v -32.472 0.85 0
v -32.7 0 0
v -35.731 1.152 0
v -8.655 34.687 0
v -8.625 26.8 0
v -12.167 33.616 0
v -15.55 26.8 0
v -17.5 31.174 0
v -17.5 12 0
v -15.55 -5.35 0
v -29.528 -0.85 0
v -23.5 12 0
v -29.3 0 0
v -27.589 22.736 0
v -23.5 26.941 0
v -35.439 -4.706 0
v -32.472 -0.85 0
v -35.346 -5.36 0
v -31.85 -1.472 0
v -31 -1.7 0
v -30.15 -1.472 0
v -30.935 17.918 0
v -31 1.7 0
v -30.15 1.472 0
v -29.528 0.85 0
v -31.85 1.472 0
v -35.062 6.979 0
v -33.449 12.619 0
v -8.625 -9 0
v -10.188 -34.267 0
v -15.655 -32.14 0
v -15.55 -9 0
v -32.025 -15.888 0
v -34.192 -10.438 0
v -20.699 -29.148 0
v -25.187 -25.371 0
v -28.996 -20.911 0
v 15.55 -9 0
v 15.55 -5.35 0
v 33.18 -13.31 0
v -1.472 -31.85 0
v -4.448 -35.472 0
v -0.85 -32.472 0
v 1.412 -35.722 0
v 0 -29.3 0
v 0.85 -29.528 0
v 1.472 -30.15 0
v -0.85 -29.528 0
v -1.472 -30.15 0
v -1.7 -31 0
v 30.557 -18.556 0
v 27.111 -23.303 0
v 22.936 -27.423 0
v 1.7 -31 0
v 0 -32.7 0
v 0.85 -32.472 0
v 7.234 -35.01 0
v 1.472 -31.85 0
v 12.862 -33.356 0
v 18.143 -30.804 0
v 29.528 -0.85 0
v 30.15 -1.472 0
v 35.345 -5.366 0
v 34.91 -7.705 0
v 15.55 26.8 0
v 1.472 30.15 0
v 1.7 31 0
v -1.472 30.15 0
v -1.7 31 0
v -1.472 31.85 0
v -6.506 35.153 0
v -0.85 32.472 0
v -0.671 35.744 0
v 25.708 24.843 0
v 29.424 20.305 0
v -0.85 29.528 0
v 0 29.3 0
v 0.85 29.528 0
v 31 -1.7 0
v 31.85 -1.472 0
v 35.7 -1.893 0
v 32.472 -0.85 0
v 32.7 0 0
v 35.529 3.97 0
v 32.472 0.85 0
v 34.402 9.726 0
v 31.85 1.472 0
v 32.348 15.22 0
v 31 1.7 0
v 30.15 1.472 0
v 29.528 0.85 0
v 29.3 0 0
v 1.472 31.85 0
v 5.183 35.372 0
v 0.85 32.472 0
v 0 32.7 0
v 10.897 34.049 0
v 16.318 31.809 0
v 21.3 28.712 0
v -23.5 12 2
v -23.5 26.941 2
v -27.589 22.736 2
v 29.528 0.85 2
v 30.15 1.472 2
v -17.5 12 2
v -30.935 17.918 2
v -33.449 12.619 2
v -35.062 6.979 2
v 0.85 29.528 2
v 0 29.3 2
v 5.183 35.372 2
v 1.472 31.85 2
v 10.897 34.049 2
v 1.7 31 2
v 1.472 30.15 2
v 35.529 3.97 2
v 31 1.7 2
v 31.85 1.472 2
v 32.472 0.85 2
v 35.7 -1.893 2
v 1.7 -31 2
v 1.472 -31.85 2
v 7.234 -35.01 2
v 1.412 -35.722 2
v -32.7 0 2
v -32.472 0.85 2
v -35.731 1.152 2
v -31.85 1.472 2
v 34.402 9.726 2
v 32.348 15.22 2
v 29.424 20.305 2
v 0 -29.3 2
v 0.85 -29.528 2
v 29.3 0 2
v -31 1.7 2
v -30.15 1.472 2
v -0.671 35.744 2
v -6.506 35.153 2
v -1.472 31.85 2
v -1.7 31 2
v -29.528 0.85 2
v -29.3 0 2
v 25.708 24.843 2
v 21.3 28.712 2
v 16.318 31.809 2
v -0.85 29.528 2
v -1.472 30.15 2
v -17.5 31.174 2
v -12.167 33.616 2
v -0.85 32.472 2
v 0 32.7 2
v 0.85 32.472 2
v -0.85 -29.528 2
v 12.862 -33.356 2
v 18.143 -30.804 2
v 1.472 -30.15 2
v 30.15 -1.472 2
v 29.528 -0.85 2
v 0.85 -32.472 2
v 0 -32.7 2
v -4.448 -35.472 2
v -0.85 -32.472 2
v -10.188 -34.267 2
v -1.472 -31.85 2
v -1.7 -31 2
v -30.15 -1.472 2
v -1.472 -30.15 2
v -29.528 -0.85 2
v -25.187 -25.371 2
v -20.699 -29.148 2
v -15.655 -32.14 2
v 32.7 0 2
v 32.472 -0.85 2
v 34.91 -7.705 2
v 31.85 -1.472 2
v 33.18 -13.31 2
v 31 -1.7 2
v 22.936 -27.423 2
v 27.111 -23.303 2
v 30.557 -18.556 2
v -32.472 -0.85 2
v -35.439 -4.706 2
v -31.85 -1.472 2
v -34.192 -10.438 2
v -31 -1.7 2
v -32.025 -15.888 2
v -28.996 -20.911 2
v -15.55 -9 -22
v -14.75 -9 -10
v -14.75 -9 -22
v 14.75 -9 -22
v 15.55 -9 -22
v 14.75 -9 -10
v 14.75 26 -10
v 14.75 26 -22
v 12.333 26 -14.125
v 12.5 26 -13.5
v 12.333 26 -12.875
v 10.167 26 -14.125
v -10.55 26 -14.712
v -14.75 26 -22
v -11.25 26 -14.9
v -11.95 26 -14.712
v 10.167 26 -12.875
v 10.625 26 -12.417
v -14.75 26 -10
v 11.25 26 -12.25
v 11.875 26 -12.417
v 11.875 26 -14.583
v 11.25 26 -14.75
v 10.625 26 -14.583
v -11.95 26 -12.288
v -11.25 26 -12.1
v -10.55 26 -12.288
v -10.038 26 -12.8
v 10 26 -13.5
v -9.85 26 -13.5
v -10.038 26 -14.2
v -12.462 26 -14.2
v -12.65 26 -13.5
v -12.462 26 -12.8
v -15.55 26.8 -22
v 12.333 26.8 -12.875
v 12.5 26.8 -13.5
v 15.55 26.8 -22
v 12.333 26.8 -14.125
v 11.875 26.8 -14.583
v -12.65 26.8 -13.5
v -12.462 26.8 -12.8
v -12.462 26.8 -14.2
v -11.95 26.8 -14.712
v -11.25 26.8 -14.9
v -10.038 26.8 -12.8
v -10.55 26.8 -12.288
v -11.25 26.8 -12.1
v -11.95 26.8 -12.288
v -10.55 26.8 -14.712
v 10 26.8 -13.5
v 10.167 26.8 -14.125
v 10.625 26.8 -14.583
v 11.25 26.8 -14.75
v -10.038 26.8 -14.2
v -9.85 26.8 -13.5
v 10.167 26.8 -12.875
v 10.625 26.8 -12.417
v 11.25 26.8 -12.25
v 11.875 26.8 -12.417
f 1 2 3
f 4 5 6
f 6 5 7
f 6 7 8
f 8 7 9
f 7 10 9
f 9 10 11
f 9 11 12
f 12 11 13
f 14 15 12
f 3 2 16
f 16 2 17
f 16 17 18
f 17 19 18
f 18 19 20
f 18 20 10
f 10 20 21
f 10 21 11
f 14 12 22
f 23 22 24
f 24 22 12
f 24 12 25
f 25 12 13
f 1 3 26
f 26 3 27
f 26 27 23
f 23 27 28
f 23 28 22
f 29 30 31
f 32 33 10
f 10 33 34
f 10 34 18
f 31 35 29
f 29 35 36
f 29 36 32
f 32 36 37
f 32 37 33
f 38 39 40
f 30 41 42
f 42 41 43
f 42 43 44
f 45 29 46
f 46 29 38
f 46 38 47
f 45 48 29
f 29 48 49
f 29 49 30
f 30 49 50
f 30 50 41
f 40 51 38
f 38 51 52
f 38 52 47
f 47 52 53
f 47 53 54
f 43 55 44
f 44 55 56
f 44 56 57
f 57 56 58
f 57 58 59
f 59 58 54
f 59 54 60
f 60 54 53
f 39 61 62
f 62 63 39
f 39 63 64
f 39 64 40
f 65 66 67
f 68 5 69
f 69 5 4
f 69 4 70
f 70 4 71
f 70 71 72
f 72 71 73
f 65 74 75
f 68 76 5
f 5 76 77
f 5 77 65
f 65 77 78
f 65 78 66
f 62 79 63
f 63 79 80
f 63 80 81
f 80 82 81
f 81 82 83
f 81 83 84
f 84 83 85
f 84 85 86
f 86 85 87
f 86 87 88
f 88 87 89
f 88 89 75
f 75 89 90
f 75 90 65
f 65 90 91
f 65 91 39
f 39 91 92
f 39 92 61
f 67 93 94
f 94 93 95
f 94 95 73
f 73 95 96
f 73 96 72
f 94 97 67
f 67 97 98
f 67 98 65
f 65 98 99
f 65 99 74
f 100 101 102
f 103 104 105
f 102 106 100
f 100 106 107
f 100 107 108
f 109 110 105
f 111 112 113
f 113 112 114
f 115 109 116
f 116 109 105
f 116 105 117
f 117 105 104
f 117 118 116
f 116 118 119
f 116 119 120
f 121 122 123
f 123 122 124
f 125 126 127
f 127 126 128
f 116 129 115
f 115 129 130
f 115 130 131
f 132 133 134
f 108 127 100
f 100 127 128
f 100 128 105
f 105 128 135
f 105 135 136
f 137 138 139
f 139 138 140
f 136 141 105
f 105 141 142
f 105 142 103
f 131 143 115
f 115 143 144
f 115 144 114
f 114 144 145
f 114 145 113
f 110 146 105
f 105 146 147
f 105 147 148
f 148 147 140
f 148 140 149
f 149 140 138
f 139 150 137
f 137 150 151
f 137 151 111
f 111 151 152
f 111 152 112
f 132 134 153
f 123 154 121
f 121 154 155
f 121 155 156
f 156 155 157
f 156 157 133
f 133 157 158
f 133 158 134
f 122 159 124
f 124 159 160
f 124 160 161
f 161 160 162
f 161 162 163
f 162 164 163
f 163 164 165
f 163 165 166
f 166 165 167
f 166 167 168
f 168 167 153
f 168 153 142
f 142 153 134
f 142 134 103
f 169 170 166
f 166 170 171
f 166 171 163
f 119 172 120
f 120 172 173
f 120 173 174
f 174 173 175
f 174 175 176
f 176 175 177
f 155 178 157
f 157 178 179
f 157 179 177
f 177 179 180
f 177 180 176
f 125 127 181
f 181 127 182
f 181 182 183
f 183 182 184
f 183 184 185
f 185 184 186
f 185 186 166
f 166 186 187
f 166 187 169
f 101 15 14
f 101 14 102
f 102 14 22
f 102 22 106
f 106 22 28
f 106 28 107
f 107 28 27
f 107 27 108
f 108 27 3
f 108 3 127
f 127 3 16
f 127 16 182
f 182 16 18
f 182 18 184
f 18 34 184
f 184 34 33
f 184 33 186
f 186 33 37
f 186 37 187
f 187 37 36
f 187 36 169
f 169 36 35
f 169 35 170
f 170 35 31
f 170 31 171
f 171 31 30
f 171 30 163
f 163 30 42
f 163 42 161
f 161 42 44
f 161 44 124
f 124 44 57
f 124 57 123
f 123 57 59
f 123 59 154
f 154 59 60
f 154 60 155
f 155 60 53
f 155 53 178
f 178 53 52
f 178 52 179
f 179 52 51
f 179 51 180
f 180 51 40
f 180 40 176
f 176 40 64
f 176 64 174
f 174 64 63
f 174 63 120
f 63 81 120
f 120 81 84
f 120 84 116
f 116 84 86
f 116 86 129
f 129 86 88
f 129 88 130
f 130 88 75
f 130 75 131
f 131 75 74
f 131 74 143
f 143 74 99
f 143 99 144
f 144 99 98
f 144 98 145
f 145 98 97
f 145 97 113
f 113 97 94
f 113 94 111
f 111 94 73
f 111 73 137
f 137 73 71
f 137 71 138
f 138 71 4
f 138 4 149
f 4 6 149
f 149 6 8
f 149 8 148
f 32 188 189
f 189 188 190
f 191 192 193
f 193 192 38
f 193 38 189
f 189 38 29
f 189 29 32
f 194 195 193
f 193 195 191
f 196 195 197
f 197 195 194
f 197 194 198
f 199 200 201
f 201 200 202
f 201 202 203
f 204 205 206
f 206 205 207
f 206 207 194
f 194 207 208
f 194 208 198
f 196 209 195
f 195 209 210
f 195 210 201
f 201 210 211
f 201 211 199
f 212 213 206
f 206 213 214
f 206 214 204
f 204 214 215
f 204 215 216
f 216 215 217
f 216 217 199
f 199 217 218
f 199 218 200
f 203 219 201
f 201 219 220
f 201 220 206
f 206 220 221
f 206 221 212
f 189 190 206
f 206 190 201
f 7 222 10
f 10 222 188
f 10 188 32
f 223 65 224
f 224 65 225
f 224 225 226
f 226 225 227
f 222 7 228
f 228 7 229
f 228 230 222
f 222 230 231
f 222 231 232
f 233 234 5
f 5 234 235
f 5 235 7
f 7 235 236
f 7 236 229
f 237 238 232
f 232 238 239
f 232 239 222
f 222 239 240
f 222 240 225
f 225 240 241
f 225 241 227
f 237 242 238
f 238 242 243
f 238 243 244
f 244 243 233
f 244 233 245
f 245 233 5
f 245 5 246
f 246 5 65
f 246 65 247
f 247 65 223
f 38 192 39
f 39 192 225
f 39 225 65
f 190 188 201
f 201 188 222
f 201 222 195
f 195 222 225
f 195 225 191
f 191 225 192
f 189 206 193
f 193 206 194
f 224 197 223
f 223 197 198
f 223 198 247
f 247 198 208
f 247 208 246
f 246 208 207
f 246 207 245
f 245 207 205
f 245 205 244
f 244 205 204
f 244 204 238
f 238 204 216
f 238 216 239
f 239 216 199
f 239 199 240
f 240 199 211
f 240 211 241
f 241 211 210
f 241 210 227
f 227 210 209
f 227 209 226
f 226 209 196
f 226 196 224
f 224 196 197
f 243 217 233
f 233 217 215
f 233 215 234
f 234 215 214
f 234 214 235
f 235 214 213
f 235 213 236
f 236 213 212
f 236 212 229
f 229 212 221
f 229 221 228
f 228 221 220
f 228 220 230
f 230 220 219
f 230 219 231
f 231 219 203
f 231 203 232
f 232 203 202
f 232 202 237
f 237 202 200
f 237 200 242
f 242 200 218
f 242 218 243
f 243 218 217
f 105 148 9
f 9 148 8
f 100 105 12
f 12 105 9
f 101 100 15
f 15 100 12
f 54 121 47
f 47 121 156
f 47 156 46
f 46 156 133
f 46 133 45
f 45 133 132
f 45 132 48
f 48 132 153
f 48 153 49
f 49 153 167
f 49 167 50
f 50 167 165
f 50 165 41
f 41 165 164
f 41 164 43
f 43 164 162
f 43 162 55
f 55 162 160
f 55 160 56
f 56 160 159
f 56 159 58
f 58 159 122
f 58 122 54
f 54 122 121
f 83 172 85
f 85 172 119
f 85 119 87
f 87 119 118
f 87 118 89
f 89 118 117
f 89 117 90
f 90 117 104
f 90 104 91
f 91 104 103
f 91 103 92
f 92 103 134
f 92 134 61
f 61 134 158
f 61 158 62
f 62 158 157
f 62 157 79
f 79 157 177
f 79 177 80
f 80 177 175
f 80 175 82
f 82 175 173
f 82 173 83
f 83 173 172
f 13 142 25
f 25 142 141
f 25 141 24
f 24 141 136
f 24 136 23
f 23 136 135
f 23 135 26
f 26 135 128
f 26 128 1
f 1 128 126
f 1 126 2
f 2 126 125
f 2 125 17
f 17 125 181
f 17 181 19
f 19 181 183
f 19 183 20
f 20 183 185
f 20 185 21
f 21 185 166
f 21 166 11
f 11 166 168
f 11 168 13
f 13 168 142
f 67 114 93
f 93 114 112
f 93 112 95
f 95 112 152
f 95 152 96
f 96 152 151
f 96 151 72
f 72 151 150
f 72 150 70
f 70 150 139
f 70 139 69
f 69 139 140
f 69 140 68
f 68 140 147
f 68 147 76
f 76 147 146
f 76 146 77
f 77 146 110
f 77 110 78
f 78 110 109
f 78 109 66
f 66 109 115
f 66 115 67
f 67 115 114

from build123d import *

# Parameters (mm, degrees)
SKETCH1_R           = 35.75
BOSS_EXTRUDE1_DEPTH = 2
BOSS_EXTRUDE2_DEPTH = 22
SKETCH3_W           = 29.5
SKETCH3_H           = 35
BOSS_EXTRUDE3_DEPTH = 10
SKETCH4_R           = 1.4
SKETCH4_R_2         = 1.25
CUT_EXTRUDE1_DEPTH  = 2
CUT_EXTRUDE2_DEPTH  = 10
SKETCH6_R           = 1.7
CUT_EXTRUDE3_DEPTH  = 34
CUT_EXTRUDE4_DEPTH  = 10


with BuildPart() as part:
    # Sketch1 → Boss-Extrude1 (new body)
    with BuildSketch(Plane.XY):
        Circle(SKETCH1_R)
    extrude(amount=BOSS_EXTRUDE1_DEPTH)

    # Sketch2 → Boss-Extrude2 (add)
    with BuildSketch(Plane(origin=(0, 0, 0), x_dir=(-1, 0, 0), z_dir=(0, 0, -1))):
        Polygon((14.75, 26), (-14.75, 26), (-14.75, -9), (-15.55, -9), (-15.55, 26.8), (15.55, 26.8), (15.55, -9), (14.75, -9), align=None)
    extrude(amount=BOSS_EXTRUDE2_DEPTH)

    # Sketch3 → Boss-Extrude3 (add)
    with BuildSketch(Plane(origin=(0, 0, 0), x_dir=(-1, 0, 0), z_dir=(0, 0, -1))):
        with Locations((0, 8.5)):
            Rectangle(SKETCH3_W, SKETCH3_H)
    extrude(amount=BOSS_EXTRUDE3_DEPTH)

    # Sketch4 → Cut-Extrude1 (cut)
    with BuildSketch(Plane.XZ.offset(-26)):
        with Locations((-11.25, -13.5)):
            Circle(SKETCH4_R)
        with Locations((11.25, -13.5)):
            Circle(SKETCH4_R_2)
    extrude(amount=-CUT_EXTRUDE1_DEPTH, mode=Mode.SUBTRACT)

    # Sketch5 → Cut-Extrude2 (cut)
    with BuildSketch(Plane.XY.offset(2)):
        Polygon((-23.5, 12), (-17.5, 12), (-17.5, 22), (-23.5, 22.131751807), align=None)
    extrude(amount=-CUT_EXTRUDE2_DEPTH, mode=Mode.SUBTRACT)

    # Sketch6 → Cut-Extrude3 (cut)
    with BuildSketch(Plane.XY.offset(2)):
        with Locations((-31, 0)):
            Circle(SKETCH6_R)
        with Locations((0, 31)):
            Circle(SKETCH6_R)
        with Locations((31, 0)):
            Circle(SKETCH6_R)
        with Locations((0, -31)):
            Circle(SKETCH6_R)
    extrude(amount=-CUT_EXTRUDE3_DEPTH, mode=Mode.SUBTRACT)

    # Sketch7 → Cut-Extrude4 (cut)
    with BuildSketch(Plane.XY.offset(2)):
        Polygon((-17.5, 12), (-23.5, 12), (-23.5, 35.926459787), (-17.5, 35.79470798), align=None)
    extrude(amount=-CUT_EXTRUDE4_DEPTH, mode=Mode.SUBTRACT)


solid = part.part
